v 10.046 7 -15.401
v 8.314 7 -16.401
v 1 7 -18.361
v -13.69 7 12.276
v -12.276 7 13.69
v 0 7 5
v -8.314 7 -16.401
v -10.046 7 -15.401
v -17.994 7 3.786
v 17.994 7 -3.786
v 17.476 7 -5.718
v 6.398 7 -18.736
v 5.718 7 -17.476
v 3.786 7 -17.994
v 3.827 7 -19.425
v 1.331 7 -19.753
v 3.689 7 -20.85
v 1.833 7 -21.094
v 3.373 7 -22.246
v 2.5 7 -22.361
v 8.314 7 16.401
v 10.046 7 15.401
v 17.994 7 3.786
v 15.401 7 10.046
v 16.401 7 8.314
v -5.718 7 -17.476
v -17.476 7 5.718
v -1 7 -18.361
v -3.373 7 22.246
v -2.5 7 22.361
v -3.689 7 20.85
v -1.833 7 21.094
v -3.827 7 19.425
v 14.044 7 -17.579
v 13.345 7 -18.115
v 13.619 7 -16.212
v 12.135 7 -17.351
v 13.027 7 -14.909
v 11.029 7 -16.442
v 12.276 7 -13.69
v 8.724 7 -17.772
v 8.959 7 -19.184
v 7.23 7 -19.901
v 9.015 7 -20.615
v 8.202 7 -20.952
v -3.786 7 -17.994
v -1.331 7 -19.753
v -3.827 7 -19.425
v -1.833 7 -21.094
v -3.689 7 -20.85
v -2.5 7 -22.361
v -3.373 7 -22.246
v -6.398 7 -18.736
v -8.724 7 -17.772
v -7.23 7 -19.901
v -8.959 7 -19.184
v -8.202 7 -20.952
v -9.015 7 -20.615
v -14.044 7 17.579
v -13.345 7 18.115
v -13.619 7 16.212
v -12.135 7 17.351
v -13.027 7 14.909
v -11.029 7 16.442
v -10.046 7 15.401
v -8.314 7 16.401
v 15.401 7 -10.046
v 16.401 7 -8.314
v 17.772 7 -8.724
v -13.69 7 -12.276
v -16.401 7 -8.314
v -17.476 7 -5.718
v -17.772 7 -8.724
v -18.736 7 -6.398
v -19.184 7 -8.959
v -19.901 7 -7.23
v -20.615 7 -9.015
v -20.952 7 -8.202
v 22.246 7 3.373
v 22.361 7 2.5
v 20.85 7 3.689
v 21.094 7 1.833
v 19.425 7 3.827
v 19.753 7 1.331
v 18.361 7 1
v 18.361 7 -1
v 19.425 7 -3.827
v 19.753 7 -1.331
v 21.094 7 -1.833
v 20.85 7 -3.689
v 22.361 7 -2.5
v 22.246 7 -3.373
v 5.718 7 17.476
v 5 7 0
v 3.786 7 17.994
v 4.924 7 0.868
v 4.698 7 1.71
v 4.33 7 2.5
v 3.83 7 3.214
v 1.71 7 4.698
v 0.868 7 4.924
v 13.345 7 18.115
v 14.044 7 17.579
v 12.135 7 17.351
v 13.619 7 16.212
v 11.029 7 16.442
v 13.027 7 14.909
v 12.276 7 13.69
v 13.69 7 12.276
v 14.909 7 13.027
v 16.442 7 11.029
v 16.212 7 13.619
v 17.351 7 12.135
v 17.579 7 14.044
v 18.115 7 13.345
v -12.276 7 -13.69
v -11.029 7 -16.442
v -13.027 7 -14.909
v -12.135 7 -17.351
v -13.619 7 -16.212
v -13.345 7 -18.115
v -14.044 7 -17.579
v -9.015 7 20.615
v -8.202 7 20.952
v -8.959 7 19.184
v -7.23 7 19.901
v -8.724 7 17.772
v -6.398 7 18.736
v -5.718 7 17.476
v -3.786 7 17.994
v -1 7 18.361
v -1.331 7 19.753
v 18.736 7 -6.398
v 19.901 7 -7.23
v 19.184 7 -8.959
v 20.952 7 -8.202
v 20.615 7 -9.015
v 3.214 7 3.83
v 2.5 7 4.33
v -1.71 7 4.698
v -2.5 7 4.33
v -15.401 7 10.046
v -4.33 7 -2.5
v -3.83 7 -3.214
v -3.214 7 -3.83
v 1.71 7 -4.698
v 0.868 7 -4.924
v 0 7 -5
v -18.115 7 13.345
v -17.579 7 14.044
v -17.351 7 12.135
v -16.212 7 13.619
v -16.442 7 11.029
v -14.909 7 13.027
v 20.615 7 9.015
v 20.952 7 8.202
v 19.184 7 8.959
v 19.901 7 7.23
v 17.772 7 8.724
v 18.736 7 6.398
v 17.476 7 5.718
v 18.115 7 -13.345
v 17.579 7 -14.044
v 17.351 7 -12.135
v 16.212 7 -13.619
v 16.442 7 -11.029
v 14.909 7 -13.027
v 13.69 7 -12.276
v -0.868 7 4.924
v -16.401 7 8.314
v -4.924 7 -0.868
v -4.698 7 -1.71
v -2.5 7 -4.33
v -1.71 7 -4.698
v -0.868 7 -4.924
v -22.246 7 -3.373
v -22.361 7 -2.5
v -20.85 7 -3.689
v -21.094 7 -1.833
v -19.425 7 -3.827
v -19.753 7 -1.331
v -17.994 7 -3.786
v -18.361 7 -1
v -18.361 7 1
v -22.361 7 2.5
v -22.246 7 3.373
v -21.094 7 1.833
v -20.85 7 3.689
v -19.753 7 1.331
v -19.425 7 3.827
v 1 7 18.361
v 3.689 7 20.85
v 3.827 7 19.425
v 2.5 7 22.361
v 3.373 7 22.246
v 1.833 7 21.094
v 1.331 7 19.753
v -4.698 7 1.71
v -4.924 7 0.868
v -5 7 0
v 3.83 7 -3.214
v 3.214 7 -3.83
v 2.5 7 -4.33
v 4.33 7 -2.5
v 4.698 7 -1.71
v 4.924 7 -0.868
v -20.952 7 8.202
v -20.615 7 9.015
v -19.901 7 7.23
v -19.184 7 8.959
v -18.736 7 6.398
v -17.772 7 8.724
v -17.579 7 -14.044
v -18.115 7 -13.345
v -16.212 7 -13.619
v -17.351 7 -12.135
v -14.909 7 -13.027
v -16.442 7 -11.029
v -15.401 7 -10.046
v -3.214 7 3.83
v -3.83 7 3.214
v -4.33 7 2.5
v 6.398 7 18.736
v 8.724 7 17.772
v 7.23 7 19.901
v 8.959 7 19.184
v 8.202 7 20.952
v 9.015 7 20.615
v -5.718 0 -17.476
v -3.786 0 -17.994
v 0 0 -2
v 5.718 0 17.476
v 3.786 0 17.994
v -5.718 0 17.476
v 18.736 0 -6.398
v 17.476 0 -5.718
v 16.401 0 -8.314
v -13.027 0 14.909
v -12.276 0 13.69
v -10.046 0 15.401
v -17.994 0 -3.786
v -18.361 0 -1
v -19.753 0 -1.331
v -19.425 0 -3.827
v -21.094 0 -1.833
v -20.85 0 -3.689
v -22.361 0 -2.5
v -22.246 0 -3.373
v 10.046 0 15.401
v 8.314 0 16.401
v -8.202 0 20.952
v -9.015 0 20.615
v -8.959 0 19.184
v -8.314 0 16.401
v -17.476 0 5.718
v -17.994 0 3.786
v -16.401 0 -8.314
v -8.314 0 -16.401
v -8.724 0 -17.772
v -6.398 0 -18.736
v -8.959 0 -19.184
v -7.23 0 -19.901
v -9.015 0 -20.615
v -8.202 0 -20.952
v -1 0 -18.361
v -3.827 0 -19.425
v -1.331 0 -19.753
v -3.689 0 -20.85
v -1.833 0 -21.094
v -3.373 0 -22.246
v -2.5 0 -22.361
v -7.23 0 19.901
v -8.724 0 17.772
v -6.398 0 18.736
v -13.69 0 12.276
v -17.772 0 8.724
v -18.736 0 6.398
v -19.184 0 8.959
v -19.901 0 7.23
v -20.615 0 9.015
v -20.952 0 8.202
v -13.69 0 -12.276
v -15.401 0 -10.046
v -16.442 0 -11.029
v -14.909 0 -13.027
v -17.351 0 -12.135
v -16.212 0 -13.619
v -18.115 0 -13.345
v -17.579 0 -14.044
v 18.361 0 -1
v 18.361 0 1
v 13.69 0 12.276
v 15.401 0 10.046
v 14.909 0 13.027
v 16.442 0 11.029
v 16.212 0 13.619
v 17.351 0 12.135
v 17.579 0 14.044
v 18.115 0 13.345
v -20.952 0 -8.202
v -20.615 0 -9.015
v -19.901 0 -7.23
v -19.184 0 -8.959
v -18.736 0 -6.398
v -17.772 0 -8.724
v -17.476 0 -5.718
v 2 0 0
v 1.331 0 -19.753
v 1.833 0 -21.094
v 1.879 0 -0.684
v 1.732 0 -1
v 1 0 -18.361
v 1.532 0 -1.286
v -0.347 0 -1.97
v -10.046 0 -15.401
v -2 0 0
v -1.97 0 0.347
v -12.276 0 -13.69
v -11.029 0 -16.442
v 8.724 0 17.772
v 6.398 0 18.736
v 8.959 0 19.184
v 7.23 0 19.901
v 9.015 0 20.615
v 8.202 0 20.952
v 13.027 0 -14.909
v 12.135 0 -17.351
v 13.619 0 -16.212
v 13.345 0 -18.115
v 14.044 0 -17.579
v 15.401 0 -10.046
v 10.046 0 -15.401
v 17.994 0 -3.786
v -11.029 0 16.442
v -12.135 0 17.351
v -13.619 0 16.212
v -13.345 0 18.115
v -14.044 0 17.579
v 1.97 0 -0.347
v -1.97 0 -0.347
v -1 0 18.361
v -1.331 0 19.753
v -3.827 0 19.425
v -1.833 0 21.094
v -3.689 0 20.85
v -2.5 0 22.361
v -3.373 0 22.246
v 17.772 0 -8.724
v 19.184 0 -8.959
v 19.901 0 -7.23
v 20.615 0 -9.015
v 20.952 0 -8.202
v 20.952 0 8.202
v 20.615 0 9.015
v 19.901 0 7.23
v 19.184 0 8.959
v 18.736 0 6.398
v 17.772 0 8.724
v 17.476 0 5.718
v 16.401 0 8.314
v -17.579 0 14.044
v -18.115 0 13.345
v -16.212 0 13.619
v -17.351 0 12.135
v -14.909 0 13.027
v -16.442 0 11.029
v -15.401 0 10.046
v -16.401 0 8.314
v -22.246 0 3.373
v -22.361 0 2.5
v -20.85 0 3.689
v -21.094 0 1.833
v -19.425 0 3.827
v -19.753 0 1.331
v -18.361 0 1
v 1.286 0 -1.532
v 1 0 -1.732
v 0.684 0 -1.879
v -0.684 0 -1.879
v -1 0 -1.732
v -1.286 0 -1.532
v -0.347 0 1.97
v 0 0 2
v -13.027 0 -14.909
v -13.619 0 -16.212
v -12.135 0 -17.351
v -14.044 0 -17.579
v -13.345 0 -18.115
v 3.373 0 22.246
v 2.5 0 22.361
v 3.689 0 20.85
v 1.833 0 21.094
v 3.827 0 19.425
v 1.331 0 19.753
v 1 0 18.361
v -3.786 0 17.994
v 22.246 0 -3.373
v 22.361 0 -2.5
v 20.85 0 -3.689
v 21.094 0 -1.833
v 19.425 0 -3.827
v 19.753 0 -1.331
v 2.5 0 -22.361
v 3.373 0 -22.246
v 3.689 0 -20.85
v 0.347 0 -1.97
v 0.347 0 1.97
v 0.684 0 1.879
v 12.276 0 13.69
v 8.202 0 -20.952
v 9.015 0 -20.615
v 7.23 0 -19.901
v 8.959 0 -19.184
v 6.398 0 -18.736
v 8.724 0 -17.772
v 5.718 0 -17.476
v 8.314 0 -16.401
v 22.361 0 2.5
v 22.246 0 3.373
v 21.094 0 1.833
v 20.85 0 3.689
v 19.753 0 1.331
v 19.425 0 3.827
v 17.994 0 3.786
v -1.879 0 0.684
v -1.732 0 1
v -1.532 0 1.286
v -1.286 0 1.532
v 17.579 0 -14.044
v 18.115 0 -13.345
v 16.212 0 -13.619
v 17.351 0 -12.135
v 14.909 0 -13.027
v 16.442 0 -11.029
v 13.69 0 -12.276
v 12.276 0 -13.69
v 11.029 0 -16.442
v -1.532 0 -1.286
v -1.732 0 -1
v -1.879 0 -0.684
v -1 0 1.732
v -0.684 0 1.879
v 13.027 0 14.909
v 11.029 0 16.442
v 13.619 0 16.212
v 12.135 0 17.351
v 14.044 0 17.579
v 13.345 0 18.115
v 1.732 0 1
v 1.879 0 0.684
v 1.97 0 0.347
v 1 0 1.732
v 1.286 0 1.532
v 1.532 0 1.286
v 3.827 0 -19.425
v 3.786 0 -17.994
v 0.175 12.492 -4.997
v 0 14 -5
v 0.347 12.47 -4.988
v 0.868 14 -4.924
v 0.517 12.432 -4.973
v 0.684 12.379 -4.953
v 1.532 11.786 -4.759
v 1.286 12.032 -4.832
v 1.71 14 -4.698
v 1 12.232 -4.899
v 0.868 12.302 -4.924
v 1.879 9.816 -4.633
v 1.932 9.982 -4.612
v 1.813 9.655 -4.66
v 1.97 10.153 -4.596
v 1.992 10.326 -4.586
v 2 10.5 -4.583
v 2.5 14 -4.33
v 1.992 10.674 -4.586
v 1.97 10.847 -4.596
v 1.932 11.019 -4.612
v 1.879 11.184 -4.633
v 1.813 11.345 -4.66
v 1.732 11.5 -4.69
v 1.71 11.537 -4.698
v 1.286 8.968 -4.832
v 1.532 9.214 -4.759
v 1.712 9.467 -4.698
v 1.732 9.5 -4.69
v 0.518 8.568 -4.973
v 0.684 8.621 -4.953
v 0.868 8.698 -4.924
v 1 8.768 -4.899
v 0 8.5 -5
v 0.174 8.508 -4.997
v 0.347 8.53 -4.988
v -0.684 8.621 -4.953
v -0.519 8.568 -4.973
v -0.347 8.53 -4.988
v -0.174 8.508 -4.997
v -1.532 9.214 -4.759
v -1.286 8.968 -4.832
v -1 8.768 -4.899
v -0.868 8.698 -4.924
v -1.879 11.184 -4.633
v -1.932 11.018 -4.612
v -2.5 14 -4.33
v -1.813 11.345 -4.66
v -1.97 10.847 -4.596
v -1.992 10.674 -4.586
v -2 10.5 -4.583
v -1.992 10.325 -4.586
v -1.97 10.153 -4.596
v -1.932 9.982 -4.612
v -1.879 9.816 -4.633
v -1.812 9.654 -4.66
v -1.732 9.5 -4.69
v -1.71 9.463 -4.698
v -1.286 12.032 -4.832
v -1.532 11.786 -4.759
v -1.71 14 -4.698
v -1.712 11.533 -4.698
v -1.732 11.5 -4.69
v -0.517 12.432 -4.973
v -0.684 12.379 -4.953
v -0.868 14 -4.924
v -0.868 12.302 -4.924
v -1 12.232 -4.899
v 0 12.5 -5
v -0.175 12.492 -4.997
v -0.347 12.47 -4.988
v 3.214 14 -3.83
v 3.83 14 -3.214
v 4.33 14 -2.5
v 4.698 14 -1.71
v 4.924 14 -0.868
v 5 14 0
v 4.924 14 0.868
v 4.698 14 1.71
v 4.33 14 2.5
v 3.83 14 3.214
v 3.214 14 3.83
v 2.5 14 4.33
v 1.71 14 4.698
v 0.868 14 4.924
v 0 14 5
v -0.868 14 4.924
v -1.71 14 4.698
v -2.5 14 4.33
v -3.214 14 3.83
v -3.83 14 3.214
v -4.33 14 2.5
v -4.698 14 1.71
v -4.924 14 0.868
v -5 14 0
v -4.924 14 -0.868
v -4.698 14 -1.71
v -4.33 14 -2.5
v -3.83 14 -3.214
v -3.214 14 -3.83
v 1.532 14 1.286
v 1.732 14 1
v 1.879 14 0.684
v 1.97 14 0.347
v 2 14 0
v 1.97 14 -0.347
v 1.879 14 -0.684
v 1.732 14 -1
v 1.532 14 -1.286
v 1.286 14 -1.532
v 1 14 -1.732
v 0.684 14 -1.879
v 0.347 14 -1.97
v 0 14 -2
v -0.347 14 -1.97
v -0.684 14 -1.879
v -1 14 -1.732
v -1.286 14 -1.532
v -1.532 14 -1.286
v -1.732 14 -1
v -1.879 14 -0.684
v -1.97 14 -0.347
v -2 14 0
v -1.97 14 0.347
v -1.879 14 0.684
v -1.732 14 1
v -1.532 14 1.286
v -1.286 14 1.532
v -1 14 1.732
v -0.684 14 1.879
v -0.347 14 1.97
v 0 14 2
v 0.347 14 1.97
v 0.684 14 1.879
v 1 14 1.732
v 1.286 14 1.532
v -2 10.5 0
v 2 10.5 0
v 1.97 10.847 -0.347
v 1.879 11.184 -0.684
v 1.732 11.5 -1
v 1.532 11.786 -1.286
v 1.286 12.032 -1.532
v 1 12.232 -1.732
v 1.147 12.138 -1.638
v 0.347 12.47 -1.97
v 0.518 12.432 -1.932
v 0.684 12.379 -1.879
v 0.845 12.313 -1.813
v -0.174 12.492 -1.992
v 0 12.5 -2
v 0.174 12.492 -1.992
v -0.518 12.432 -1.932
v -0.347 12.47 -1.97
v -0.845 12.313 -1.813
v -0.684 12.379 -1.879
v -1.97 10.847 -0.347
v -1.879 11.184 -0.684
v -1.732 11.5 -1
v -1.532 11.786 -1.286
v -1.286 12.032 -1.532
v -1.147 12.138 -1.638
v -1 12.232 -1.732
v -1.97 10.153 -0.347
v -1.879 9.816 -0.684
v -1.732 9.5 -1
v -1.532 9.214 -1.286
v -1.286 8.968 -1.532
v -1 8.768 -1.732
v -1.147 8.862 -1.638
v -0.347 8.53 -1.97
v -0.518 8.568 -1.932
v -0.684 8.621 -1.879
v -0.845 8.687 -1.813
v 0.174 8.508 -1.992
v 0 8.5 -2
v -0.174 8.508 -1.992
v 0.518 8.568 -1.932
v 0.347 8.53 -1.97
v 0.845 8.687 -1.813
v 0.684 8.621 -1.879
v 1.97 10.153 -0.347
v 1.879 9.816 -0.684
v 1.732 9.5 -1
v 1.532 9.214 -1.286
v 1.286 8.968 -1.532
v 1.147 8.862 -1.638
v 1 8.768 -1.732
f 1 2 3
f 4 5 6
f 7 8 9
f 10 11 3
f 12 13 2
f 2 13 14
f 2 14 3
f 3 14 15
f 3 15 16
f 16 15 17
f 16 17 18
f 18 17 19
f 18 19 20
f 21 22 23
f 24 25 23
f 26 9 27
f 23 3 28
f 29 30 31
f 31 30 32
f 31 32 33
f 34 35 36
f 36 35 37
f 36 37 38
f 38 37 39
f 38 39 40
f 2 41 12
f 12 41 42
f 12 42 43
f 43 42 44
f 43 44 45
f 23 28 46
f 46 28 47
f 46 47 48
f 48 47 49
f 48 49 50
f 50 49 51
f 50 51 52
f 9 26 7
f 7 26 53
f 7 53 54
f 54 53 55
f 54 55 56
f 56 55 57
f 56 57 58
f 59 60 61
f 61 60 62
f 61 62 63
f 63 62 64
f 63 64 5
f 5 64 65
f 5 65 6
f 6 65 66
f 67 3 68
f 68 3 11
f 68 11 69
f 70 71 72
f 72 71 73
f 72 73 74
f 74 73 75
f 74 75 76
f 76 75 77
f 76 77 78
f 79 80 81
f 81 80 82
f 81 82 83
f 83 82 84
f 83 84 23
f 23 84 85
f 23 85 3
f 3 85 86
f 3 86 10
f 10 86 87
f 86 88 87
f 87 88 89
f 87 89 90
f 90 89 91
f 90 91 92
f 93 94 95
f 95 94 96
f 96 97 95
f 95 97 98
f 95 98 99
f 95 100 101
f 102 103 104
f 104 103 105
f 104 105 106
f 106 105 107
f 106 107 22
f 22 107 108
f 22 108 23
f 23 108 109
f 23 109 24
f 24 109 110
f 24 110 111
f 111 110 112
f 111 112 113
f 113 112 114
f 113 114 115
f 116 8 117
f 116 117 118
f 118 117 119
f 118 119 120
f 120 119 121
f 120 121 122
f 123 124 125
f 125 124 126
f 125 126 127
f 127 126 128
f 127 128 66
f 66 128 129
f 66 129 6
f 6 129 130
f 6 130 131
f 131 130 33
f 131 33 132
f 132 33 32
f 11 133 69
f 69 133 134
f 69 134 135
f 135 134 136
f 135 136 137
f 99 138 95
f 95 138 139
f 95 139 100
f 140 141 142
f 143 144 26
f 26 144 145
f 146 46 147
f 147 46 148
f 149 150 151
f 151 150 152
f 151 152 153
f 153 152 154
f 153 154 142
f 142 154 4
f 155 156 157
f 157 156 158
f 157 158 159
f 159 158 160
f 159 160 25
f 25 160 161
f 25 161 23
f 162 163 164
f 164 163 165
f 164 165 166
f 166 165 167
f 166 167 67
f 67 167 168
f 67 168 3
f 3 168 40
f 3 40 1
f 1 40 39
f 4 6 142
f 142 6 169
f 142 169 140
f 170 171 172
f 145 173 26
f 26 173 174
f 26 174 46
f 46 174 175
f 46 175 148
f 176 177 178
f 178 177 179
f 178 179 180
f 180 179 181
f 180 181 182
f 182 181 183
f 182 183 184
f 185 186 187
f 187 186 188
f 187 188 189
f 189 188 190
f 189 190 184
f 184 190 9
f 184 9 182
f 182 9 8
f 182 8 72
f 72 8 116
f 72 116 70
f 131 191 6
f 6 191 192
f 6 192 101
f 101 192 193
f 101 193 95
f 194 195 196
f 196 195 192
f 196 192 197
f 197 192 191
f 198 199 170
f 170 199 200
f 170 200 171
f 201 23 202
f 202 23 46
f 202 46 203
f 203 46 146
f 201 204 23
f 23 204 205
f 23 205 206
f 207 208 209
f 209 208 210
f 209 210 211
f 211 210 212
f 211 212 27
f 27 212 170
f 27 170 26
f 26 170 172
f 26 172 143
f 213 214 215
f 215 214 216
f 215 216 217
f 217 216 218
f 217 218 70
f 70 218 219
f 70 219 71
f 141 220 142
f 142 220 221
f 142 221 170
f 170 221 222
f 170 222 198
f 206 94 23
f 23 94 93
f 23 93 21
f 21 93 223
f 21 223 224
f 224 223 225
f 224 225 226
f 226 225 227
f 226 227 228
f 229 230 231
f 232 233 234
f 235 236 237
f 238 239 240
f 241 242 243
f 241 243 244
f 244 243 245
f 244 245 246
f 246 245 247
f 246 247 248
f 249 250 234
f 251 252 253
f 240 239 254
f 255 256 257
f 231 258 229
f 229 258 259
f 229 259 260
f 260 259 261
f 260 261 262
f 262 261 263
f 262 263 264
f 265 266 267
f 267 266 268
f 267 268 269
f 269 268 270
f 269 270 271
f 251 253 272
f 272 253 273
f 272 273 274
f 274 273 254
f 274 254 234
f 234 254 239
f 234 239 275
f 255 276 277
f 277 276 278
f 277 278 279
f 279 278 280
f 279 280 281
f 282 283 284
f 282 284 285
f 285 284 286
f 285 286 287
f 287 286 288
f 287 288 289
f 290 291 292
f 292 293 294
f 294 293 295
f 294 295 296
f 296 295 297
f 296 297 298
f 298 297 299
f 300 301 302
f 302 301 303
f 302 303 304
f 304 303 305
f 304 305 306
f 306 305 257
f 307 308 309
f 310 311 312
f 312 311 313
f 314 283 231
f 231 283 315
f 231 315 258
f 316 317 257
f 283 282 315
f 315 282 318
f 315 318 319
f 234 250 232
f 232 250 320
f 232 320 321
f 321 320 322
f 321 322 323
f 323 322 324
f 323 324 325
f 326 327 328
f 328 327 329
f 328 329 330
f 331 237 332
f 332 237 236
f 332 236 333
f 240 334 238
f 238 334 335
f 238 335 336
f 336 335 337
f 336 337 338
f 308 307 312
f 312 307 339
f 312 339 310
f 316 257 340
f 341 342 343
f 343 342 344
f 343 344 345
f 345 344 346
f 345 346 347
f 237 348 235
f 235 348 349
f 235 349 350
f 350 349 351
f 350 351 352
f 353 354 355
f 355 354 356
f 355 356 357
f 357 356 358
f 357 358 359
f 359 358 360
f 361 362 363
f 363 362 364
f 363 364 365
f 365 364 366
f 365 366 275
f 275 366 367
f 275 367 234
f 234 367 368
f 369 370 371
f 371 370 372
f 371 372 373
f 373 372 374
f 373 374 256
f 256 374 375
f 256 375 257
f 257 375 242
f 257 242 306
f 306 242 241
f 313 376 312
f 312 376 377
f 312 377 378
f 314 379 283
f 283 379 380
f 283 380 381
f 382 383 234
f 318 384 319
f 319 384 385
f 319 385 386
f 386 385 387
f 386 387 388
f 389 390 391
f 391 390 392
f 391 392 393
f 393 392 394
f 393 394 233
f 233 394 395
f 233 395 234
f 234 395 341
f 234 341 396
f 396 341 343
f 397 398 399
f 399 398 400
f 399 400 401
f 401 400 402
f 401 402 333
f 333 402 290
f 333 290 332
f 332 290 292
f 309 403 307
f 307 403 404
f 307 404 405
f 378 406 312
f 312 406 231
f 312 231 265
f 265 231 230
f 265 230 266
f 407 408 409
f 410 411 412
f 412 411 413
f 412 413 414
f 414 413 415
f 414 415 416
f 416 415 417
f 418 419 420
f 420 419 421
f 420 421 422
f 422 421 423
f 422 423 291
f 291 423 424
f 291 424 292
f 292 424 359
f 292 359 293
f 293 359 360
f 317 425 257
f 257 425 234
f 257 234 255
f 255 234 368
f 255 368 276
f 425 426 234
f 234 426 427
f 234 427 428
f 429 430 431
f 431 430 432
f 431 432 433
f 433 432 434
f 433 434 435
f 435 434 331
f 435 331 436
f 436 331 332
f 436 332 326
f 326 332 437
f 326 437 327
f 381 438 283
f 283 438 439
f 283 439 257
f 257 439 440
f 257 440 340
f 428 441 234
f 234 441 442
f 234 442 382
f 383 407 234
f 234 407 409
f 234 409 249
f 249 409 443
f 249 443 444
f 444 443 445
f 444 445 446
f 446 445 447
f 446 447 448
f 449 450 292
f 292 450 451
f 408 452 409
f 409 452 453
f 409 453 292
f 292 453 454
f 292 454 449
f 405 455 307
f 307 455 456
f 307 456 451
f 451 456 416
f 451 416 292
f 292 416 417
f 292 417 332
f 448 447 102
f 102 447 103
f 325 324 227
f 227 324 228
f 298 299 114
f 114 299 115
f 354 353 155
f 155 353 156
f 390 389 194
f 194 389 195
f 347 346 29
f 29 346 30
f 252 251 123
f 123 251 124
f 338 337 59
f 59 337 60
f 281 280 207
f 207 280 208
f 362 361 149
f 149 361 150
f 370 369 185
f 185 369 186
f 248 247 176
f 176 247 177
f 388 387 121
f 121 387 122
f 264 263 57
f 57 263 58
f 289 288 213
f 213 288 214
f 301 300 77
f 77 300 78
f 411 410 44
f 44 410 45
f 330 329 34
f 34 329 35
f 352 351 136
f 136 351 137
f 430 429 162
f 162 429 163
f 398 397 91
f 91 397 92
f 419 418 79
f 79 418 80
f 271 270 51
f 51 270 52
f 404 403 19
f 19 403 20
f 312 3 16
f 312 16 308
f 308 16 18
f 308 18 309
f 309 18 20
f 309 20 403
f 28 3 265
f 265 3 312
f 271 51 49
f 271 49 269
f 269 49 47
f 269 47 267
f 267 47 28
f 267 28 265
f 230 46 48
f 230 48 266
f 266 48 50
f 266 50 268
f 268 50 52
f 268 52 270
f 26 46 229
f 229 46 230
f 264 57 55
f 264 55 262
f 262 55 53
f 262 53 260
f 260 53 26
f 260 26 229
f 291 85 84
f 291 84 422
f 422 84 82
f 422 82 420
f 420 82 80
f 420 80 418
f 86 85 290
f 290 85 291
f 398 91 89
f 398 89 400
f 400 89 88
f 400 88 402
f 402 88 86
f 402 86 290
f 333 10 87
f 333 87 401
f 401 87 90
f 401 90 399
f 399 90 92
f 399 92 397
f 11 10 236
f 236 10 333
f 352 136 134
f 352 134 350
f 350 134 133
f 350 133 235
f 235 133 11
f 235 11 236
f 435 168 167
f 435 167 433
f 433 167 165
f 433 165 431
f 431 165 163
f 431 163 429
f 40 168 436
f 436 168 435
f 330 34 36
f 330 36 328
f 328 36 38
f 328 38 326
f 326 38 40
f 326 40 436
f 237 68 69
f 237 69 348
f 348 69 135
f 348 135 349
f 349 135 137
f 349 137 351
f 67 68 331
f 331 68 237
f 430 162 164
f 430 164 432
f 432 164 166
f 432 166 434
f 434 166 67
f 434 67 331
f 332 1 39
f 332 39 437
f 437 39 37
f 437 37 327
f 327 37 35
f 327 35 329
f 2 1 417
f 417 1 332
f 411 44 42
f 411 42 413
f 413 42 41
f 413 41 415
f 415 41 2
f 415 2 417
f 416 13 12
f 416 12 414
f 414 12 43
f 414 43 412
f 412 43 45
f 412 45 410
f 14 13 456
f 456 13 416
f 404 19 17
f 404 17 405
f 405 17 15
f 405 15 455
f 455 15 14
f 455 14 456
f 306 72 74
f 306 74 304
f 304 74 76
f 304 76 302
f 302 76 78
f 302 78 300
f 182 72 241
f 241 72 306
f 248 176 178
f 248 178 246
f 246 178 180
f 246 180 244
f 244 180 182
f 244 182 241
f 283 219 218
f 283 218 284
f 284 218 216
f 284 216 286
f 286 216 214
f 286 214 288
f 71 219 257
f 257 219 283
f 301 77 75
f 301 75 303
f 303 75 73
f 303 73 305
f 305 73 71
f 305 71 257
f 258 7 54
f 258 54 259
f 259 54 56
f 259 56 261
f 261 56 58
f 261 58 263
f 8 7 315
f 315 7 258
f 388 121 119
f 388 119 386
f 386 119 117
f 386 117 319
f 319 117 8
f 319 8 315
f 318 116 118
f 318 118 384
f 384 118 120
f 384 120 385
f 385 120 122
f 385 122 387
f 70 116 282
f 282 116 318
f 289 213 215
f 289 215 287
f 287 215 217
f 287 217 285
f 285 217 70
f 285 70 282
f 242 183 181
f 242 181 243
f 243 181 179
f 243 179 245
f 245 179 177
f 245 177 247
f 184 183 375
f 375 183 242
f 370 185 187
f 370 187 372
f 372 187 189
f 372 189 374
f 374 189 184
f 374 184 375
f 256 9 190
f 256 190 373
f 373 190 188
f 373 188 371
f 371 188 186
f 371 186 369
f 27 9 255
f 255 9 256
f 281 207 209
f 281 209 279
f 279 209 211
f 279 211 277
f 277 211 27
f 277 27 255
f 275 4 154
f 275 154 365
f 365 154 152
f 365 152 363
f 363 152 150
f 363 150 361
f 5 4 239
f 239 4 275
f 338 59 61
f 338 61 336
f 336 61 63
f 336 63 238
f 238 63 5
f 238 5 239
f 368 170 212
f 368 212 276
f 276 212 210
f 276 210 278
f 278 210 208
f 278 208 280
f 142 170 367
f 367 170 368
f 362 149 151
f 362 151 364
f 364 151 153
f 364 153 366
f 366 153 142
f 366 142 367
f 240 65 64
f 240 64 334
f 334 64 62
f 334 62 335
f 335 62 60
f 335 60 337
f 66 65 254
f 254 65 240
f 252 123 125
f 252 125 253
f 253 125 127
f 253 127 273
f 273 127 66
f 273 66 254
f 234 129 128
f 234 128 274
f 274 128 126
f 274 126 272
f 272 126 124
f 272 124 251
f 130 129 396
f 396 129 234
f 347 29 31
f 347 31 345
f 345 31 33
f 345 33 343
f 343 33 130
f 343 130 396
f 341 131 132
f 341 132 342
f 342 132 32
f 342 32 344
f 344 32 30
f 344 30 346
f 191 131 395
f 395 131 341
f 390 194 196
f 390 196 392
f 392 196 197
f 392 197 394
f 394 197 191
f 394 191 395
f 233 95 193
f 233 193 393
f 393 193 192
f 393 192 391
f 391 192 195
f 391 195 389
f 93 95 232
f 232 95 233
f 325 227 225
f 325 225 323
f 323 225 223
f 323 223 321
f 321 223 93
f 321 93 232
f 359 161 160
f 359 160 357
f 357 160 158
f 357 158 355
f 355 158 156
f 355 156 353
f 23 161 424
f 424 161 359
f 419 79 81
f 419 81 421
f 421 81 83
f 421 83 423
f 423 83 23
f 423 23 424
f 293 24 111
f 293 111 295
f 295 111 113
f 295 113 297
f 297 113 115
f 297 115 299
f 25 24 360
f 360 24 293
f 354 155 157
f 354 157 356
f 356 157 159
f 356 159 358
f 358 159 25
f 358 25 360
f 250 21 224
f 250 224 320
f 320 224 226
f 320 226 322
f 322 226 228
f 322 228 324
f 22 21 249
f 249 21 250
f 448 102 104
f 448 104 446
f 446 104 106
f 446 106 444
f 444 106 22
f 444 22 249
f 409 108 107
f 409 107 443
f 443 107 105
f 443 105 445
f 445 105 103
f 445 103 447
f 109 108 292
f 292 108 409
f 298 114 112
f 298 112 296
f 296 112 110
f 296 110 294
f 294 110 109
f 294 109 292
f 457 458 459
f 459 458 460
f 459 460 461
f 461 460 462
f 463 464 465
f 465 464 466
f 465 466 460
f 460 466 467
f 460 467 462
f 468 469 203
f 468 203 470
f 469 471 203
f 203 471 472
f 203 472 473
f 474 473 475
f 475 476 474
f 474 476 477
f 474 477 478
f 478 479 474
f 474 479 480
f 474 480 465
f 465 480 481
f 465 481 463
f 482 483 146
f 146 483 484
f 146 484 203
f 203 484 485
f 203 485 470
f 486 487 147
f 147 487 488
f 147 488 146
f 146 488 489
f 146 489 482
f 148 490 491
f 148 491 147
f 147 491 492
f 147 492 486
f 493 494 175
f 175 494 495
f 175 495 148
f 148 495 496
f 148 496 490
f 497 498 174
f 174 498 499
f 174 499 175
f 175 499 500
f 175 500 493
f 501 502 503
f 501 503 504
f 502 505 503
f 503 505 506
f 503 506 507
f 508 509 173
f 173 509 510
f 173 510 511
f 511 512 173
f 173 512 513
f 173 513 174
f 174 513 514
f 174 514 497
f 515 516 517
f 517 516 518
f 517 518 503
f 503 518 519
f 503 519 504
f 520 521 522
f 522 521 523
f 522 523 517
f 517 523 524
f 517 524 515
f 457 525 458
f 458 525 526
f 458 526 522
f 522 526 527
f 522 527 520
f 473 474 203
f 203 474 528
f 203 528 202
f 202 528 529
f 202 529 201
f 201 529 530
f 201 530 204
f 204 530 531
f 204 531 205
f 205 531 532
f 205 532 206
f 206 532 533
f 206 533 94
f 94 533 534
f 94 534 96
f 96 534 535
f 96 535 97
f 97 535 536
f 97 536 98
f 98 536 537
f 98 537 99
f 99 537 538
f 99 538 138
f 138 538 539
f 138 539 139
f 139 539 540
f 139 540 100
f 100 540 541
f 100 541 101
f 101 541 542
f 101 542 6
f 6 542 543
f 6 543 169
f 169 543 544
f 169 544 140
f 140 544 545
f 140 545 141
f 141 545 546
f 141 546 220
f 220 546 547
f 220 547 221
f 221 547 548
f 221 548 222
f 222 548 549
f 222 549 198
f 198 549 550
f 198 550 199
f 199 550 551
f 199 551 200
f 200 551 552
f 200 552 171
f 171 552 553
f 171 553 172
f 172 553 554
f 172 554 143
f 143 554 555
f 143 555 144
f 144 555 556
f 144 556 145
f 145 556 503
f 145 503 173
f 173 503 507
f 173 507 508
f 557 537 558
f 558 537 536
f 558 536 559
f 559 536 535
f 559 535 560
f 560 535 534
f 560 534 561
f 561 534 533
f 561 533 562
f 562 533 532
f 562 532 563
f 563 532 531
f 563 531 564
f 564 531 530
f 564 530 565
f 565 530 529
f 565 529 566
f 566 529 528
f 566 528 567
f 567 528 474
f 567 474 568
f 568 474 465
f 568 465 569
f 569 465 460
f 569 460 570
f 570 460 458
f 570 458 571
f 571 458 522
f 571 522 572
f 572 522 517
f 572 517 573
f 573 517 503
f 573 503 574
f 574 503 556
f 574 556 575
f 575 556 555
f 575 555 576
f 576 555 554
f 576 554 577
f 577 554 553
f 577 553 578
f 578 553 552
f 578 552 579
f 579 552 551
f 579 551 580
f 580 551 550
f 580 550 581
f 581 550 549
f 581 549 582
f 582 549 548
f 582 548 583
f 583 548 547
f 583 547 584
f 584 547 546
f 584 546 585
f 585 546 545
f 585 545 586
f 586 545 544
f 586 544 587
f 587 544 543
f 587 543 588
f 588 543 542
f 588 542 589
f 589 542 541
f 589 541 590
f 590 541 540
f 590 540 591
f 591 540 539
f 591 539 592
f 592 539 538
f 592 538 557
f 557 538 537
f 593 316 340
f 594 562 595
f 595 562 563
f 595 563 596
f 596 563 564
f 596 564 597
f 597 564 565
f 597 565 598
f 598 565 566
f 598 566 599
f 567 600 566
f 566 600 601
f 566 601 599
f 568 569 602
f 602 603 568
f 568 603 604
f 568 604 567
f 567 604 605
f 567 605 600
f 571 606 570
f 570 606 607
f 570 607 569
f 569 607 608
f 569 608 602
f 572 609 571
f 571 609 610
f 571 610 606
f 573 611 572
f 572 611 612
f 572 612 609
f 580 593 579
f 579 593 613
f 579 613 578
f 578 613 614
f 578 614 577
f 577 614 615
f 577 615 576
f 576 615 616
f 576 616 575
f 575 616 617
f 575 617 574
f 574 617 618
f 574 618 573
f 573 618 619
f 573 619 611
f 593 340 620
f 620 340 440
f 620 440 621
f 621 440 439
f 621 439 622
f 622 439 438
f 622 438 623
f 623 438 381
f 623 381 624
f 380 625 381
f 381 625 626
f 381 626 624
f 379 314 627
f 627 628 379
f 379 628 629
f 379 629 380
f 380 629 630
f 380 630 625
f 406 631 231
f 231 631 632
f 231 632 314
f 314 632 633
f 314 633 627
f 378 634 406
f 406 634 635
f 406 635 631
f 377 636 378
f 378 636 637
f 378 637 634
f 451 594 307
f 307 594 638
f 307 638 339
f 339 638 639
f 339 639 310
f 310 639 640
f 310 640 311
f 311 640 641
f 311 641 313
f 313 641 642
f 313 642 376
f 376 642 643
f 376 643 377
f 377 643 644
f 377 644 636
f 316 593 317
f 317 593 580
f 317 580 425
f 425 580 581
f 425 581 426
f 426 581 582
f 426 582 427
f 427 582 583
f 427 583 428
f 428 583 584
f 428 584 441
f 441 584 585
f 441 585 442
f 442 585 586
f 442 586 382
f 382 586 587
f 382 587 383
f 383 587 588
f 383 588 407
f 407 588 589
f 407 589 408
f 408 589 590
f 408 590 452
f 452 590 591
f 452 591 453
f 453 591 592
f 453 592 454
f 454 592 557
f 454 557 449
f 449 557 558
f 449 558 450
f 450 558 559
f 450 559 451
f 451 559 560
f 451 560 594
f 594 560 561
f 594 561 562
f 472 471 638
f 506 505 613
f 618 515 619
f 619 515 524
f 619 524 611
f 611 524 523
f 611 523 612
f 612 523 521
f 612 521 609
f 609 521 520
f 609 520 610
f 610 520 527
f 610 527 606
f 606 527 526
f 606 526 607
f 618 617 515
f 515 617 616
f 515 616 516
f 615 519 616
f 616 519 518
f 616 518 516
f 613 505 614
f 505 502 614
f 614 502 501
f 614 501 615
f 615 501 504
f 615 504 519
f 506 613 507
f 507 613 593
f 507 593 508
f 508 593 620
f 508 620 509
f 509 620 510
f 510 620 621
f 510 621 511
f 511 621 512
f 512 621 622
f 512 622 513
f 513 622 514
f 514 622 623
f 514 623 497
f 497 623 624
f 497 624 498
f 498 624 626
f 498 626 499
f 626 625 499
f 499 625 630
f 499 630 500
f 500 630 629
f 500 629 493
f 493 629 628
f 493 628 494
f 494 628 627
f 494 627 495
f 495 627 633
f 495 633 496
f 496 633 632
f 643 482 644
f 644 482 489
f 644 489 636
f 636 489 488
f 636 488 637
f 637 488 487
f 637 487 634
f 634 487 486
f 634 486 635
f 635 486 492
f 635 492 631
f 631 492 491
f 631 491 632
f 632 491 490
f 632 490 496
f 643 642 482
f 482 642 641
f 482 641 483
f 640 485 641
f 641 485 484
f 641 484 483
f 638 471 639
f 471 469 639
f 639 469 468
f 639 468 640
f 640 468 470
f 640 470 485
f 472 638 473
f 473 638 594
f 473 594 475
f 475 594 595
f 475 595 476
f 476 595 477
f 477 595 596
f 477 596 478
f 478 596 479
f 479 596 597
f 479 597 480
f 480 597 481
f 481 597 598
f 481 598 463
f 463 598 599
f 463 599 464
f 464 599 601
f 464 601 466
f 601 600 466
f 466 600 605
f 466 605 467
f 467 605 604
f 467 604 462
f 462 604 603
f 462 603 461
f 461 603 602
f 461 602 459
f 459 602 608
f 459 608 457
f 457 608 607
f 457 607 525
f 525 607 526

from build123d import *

# Parameters (mm, degrees)
SKETCH1_R           = 22.5
BOSS_EXTRUDE1_DEPTH = 7
CUT_EXTRUDE1_DEPTH  = 8
CIRPATTERN1_COUNT   = 24
SKETCH3_R           = 5
BOSS_EXTRUDE2_DEPTH = 7
SKETCH4_R           = 2
CUT_EXTRUDE2_DEPTH  = 15
SKETCH5_R           = 2
CUT_EXTRUDE3_DEPTH  = 23.360679775


with BuildPart() as part:
    # Sketch1 → Boss-Extrude1 (new body)
    with BuildSketch(Plane(origin=(0, 0, 0), x_dir=(1, 0, 0), z_dir=(0, 1, 0))):
        Circle(SKETCH1_R)
    extrude(amount=BOSS_EXTRUDE1_DEPTH)

    # Sketch2 → Cut-Extrude1 (cut, through all)
    with BuildSketch(Plane(origin=(0, 7, 0), x_dir=(1, 0, 0), z_dir=(0, 1, 0))):
        with BuildLine():
            ThreePointArc((2.5, 22.360679775), (1.560955546, 20.431571445), (1, 18.360679775))
            ThreePointArc((1, 18.360679775), (0, 18.387891717), (-1, 18.360679775))
            ThreePointArc((-1, 18.360679775), (-1.560955546, 20.431571445), (-2.5, 22.360679775))
            ThreePointArc((-2.5, 22.360679775), (0, 22.5), (2.5, 22.360679775))
        make_face()
    cut_extrude1 = extrude(amount=-CUT_EXTRUDE1_DEPTH, mode=Mode.SUBTRACT)

    # CirPattern1: Cut-Extrude1 ×24 about axis
    cirpattern1_axis = Axis((0, 0, 0), (0, 1, 0))
    for i in range(1, CIRPATTERN1_COUNT):
        add(cut_extrude1.rotate(cirpattern1_axis, i * 360 / CIRPATTERN1_COUNT), mode=Mode.SUBTRACT)

    # Sketch3 → Boss-Extrude2 (add)
    with BuildSketch(Plane(origin=(0, 7, 0), x_dir=(1, 0, 0), z_dir=(0, 1, 0))):
        Circle(SKETCH3_R)
    extrude(amount=BOSS_EXTRUDE2_DEPTH)

    # Sketch4 → Cut-Extrude2 (cut, through all)
    with BuildSketch(Plane(origin=(0, 14, 0), x_dir=(1, 0, 0), z_dir=(0, 1, 0))):
        Circle(SKETCH4_R)
    extrude(amount=-CUT_EXTRUDE2_DEPTH, mode=Mode.SUBTRACT)

    # Sketch5 → Cut-Extrude3 (cut, through all)
    with BuildSketch(Plane.XY):
        with Locations((0, 10.5)):
            Circle(SKETCH5_R)
    extrude(amount=-CUT_EXTRUDE3_DEPTH, mode=Mode.SUBTRACT)


solid = part.part
